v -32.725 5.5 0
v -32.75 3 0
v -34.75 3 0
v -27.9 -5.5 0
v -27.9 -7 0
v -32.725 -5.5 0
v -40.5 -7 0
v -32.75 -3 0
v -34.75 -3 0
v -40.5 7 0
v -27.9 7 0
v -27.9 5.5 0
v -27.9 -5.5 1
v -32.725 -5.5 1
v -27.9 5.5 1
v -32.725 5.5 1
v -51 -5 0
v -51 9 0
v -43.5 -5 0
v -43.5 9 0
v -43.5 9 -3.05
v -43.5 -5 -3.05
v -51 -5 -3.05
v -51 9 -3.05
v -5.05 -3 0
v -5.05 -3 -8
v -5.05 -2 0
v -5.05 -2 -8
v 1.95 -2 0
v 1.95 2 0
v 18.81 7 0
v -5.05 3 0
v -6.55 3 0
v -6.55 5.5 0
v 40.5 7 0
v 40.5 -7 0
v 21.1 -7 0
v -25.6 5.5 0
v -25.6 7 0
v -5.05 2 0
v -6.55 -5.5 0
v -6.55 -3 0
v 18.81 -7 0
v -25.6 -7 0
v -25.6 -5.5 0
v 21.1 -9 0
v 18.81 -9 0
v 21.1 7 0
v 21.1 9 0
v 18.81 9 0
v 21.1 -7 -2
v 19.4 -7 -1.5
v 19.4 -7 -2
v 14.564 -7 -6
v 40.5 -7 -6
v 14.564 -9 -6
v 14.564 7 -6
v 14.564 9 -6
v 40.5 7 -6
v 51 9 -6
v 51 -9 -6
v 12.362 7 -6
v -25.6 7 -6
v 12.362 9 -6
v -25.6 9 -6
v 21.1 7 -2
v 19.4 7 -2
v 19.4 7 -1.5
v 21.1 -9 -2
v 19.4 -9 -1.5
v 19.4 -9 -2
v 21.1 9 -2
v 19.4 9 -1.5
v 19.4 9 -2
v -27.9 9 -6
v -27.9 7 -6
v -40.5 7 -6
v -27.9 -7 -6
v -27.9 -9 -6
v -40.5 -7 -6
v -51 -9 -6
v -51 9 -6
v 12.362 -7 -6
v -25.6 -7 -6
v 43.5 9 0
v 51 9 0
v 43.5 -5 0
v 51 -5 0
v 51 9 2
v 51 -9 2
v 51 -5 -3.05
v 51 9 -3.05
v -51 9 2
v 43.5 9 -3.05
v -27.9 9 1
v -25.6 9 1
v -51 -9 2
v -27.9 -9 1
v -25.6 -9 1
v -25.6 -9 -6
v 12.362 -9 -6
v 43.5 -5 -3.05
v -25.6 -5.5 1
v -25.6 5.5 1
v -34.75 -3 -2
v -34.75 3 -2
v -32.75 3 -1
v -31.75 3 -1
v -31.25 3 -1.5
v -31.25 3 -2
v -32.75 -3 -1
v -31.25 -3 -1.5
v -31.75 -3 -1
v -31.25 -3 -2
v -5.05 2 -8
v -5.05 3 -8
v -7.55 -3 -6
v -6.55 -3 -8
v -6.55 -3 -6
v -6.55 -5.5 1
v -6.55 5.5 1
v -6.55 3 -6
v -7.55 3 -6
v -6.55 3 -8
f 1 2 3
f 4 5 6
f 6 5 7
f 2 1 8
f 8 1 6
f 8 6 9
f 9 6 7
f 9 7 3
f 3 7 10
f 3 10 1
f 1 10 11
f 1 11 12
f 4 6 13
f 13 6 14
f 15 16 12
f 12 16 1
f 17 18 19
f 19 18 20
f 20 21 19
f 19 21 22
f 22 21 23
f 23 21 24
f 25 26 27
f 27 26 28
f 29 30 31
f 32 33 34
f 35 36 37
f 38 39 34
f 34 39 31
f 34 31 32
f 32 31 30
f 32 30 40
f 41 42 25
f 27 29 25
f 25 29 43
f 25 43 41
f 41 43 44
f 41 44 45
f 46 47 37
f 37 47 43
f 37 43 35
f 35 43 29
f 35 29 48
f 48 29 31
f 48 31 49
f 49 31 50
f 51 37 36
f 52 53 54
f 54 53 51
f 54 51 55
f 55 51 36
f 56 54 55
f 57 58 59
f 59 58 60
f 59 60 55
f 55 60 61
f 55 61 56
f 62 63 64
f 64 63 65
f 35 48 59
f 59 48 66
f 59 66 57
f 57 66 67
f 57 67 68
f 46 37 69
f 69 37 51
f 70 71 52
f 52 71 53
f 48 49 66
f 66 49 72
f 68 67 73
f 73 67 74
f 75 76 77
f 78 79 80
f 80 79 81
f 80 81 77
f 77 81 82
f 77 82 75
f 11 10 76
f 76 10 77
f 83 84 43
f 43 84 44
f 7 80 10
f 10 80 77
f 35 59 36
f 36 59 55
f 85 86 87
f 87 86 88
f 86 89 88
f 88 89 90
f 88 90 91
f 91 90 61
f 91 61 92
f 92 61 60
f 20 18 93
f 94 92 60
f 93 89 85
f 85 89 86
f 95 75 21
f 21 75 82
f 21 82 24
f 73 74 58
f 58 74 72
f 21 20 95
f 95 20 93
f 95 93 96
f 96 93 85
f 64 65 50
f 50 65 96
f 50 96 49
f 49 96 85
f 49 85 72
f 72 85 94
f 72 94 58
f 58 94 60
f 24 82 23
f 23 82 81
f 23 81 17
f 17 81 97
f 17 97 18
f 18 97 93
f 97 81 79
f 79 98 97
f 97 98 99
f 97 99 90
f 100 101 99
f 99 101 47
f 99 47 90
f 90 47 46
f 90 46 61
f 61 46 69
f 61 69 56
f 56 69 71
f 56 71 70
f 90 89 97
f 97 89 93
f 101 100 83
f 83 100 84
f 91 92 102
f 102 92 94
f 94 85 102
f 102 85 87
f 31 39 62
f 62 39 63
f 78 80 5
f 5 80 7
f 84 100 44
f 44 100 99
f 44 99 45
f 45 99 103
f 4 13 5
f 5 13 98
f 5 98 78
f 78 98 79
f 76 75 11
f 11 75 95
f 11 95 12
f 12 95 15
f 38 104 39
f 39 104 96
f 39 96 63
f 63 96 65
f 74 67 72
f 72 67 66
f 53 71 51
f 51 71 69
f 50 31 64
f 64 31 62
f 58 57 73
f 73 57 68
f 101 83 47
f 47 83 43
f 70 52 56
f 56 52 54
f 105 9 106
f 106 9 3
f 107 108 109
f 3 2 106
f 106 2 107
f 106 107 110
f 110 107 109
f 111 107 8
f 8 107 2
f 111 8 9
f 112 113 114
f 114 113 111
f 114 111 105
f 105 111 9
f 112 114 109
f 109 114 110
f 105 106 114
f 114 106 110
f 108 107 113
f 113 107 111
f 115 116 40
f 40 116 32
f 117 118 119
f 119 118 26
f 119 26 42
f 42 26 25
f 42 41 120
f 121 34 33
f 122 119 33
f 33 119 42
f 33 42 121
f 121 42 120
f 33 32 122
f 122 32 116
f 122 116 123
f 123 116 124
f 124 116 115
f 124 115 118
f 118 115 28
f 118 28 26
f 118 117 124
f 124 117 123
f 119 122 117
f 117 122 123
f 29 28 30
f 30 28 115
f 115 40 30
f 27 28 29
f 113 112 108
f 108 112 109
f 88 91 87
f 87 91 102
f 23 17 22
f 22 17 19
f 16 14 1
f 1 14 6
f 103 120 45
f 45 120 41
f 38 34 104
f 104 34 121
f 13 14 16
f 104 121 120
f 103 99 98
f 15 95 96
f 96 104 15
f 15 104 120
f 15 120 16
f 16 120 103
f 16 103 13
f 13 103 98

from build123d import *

# Parameters (mm, degrees)
SKETCH1_W            = 102
SKETCH1_H            = 18
BOSS_EXTRUDE1_DEPTH  = 2
BOSS_EXTRUDE2_DEPTH  = 18
SKETCH4_W            = 81
SKETCH4_H            = 2
BOSS_EXTRUDE3_DEPTH  = 6
SKETCH5_W            = 2.3
SKETCH5_H            = 2
SKETCH5_W_2          = 1.7
CUT_EXTRUDE1_DEPTH   = 6
SKETCH6_W            = 1.7
SKETCH6_H            = 2
BOSS_EXTRUDE4_DEPTH  = 4
CUT_EXTRUDE2_DEPTH   = 20
SKETCH8_W            = 2
SKETCH8_H            = 6
BOSS_EXTRUDE5_DEPTH  = 1
SKETCH10_W           = 3.5
SKETCH10_H           = 6
BOSS_EXTRUDE6_DEPTH  = 1
SKETCH11_W           = 1.5
SKETCH11_H           = 6
BOSS_EXTRUDE7_DEPTH  = 8
BOSS_EXTRUDE8_DEPTH  = 6
RIB1_REACH           = 54.402
SKETCH17_WALL_W      = 117.434725866
SKETCH17_WALL_H      = 4
CHAMFER1_SIZE        = 0.5
SKETCH18_W           = 7.5
SKETCH18_H           = 3.05
BOSS_EXTRUDE10_DEPTH = 4
SKETCH19_W           = 26.1754507
SKETCH19_H           = 11
CUT_EXTRUDE3_DEPTH   = 1
SKETCH20_W           = 2.3
SKETCH20_H           = 1
CUT_EXTRUDE4_DEPTH   = 21


with BuildPart() as part:
    # Sketch1 → Boss-Extrude1 (new body)
    with BuildSketch(Plane.XY):
        Rectangle(SKETCH1_W, SKETCH1_H)
    extrude(amount=BOSS_EXTRUDE1_DEPTH)

    # Sketch2 → Boss-Extrude2 (add)
    with BuildSketch(Plane(origin=(0, 9, 0), x_dir=(1, 0, 0), z_dir=(0, 1, 0))):
        Polygon((-43.5, 0), (-40.5, 0), (-40.5, 6), (-51, 6), (-51, 3.05), (-43.5, 3.05), align=None)
        Polygon((40.5, 6), (40.5, 0), (43.5, 0), (43.5, 3.05), (51, 3.05), (51, 6), align=None)
    extrude(amount=-BOSS_EXTRUDE2_DEPTH)

    # Sketch4 → Boss-Extrude3 (add)
    with BuildSketch(Plane(origin=(0, 0, 0), x_dir=(-1, 0, 0), z_dir=(0, 0, -1))):
        with Locations((0, 8)):
            Rectangle(SKETCH4_W, SKETCH4_H)
        with Locations((0, -8)):
            Rectangle(SKETCH4_W, SKETCH4_H)
    extrude(amount=BOSS_EXTRUDE3_DEPTH)

    # Sketch5 → Cut-Extrude1 (cut)
    with BuildSketch(Plane(origin=(0, 0, -6), x_dir=(-1, 0, 0), z_dir=(0, 0, -1))):
        with Locations((26.75, -8)):
            Rectangle(SKETCH5_W, SKETCH5_H)
        with Locations((26.75, 8)):
            Rectangle(SKETCH5_W, SKETCH5_H)
        with Locations((-20.25, 8)):
            Rectangle(SKETCH5_W_2, SKETCH5_H)
        with Locations((-20.25, -8)):
            Rectangle(SKETCH5_W_2, SKETCH5_H)
    extrude(amount=-CUT_EXTRUDE1_DEPTH, mode=Mode.SUBTRACT)

    # Sketch6 → Boss-Extrude4 (add)
    with BuildSketch(Plane(origin=(0, 0, -6), x_dir=(-1, 0, 0), z_dir=(0, 0, -1))):
        with Locations((-20.25, 8)):
            Rectangle(SKETCH6_W, SKETCH6_H)
        with Locations((-20.25, -8)):
            Rectangle(SKETCH6_W, SKETCH6_H)
    extrude(amount=-BOSS_EXTRUDE4_DEPTH)

    # Sketch7 → Cut-Extrude2 (cut)
    with BuildSketch(Plane(origin=(0, 9, 0), x_dir=(1, 0, 0), z_dir=(0, 1, 0))):
        Polygon((18.810082021, 0), (12.361738872, 6), (14.563742638, 6), (19.4, 1.5), (20.041328573, 1.5), (20.041328573, 0), align=None)
    extrude(amount=-CUT_EXTRUDE2_DEPTH, mode=Mode.SUBTRACT)

    # Sketch8 → Boss-Extrude5 (add)
    with BuildSketch(Plane(origin=(0, 0, 0), x_dir=(-1, 0, 0), z_dir=(0, 0, -1))):
        with Locations((33.75, 0)):
            Rectangle(SKETCH8_W, SKETCH8_H)
    extrude(amount=BOSS_EXTRUDE5_DEPTH)

    # Sketch10 → Boss-Extrude6 (add)
    with BuildSketch(Plane(origin=(0, 0, -1), x_dir=(-1, 0, 0), z_dir=(0, 0, -1))):
        with Locations((33, 0)):
            Rectangle(SKETCH10_W, SKETCH10_H)
    extrude(amount=BOSS_EXTRUDE6_DEPTH)

    # Sketch11 → Boss-Extrude7 (add)
    with BuildSketch(Plane(origin=(0, 0, 0), x_dir=(-1, 0, 0), z_dir=(0, 0, -1))):
        with Locations((5.8, 0)):
            Rectangle(SKETCH11_W, SKETCH11_H)
    extrude(amount=BOSS_EXTRUDE7_DEPTH)

    # Sketch12 → Boss-Extrude8 (add)
    with BuildSketch(Plane.XZ.offset(3)):
        Polygon((-6.55, -8), (-7.55, -6), (-6.55, -6), align=None)
    extrude(amount=-BOSS_EXTRUDE8_DEPTH)

    # Sketch17 wall → Rib1 (add, up to next)
    with BuildSketch(Plane(origin=(-1.55, 0, -4), x_dir=(0.658504607869, 0, 0.752576694707), z_dir=(0.752576694707, 0, -0.658504607869)), mode=Mode.PRIVATE) as rib1_sk1:
        Rectangle(SKETCH17_WALL_W, SKETCH17_WALL_H)
    rib1_tool1 = extrude(rib1_sk1.sketch, amount=-RIB1_REACH, mode=Mode.PRIVATE) - part.part
    add(rib1_tool1.solids().sort_by_distance((-1.55, 0, -4))[0])

    # Chamfer1
    chamfer1_edges = [part.edges().sort_by_distance(p)[0] for p in [
        (-31.25, 0, -1),
    ]]
    chamfer(chamfer1_edges, length=CHAMFER1_SIZE)

    # Sketch18 → Boss-Extrude10 (add)
    with BuildSketch(Plane.XZ.offset(9)):
        with Locations((47.25, -1.525)):
            Rectangle(SKETCH18_W, SKETCH18_H)
        with Locations((-47.25, -1.525)):
            Rectangle(SKETCH18_W, SKETCH18_H)
    extrude(amount=-BOSS_EXTRUDE10_DEPTH)

    # Sketch19 → Cut-Extrude3 (cut)
    with BuildSketch(Plane(origin=(0, 0, 0), x_dir=(-1, 0, 0), z_dir=(0, 0, -1))):
        with Locations((19.63772535, 0)):
            Rectangle(SKETCH19_W, SKETCH19_H)
    extrude(amount=-CUT_EXTRUDE3_DEPTH, mode=Mode.SUBTRACT)

    # Sketch20 → Cut-Extrude4 (cut)
    with BuildSketch(Plane(origin=(0, 9, 0), x_dir=(1, 0, 0), z_dir=(0, 1, 0))):
        with Locations((-26.75, -0.5)):
            Rectangle(SKETCH20_W, SKETCH20_H)
    extrude(amount=-CUT_EXTRUDE4_DEPTH, mode=Mode.SUBTRACT)


solid = part.part
